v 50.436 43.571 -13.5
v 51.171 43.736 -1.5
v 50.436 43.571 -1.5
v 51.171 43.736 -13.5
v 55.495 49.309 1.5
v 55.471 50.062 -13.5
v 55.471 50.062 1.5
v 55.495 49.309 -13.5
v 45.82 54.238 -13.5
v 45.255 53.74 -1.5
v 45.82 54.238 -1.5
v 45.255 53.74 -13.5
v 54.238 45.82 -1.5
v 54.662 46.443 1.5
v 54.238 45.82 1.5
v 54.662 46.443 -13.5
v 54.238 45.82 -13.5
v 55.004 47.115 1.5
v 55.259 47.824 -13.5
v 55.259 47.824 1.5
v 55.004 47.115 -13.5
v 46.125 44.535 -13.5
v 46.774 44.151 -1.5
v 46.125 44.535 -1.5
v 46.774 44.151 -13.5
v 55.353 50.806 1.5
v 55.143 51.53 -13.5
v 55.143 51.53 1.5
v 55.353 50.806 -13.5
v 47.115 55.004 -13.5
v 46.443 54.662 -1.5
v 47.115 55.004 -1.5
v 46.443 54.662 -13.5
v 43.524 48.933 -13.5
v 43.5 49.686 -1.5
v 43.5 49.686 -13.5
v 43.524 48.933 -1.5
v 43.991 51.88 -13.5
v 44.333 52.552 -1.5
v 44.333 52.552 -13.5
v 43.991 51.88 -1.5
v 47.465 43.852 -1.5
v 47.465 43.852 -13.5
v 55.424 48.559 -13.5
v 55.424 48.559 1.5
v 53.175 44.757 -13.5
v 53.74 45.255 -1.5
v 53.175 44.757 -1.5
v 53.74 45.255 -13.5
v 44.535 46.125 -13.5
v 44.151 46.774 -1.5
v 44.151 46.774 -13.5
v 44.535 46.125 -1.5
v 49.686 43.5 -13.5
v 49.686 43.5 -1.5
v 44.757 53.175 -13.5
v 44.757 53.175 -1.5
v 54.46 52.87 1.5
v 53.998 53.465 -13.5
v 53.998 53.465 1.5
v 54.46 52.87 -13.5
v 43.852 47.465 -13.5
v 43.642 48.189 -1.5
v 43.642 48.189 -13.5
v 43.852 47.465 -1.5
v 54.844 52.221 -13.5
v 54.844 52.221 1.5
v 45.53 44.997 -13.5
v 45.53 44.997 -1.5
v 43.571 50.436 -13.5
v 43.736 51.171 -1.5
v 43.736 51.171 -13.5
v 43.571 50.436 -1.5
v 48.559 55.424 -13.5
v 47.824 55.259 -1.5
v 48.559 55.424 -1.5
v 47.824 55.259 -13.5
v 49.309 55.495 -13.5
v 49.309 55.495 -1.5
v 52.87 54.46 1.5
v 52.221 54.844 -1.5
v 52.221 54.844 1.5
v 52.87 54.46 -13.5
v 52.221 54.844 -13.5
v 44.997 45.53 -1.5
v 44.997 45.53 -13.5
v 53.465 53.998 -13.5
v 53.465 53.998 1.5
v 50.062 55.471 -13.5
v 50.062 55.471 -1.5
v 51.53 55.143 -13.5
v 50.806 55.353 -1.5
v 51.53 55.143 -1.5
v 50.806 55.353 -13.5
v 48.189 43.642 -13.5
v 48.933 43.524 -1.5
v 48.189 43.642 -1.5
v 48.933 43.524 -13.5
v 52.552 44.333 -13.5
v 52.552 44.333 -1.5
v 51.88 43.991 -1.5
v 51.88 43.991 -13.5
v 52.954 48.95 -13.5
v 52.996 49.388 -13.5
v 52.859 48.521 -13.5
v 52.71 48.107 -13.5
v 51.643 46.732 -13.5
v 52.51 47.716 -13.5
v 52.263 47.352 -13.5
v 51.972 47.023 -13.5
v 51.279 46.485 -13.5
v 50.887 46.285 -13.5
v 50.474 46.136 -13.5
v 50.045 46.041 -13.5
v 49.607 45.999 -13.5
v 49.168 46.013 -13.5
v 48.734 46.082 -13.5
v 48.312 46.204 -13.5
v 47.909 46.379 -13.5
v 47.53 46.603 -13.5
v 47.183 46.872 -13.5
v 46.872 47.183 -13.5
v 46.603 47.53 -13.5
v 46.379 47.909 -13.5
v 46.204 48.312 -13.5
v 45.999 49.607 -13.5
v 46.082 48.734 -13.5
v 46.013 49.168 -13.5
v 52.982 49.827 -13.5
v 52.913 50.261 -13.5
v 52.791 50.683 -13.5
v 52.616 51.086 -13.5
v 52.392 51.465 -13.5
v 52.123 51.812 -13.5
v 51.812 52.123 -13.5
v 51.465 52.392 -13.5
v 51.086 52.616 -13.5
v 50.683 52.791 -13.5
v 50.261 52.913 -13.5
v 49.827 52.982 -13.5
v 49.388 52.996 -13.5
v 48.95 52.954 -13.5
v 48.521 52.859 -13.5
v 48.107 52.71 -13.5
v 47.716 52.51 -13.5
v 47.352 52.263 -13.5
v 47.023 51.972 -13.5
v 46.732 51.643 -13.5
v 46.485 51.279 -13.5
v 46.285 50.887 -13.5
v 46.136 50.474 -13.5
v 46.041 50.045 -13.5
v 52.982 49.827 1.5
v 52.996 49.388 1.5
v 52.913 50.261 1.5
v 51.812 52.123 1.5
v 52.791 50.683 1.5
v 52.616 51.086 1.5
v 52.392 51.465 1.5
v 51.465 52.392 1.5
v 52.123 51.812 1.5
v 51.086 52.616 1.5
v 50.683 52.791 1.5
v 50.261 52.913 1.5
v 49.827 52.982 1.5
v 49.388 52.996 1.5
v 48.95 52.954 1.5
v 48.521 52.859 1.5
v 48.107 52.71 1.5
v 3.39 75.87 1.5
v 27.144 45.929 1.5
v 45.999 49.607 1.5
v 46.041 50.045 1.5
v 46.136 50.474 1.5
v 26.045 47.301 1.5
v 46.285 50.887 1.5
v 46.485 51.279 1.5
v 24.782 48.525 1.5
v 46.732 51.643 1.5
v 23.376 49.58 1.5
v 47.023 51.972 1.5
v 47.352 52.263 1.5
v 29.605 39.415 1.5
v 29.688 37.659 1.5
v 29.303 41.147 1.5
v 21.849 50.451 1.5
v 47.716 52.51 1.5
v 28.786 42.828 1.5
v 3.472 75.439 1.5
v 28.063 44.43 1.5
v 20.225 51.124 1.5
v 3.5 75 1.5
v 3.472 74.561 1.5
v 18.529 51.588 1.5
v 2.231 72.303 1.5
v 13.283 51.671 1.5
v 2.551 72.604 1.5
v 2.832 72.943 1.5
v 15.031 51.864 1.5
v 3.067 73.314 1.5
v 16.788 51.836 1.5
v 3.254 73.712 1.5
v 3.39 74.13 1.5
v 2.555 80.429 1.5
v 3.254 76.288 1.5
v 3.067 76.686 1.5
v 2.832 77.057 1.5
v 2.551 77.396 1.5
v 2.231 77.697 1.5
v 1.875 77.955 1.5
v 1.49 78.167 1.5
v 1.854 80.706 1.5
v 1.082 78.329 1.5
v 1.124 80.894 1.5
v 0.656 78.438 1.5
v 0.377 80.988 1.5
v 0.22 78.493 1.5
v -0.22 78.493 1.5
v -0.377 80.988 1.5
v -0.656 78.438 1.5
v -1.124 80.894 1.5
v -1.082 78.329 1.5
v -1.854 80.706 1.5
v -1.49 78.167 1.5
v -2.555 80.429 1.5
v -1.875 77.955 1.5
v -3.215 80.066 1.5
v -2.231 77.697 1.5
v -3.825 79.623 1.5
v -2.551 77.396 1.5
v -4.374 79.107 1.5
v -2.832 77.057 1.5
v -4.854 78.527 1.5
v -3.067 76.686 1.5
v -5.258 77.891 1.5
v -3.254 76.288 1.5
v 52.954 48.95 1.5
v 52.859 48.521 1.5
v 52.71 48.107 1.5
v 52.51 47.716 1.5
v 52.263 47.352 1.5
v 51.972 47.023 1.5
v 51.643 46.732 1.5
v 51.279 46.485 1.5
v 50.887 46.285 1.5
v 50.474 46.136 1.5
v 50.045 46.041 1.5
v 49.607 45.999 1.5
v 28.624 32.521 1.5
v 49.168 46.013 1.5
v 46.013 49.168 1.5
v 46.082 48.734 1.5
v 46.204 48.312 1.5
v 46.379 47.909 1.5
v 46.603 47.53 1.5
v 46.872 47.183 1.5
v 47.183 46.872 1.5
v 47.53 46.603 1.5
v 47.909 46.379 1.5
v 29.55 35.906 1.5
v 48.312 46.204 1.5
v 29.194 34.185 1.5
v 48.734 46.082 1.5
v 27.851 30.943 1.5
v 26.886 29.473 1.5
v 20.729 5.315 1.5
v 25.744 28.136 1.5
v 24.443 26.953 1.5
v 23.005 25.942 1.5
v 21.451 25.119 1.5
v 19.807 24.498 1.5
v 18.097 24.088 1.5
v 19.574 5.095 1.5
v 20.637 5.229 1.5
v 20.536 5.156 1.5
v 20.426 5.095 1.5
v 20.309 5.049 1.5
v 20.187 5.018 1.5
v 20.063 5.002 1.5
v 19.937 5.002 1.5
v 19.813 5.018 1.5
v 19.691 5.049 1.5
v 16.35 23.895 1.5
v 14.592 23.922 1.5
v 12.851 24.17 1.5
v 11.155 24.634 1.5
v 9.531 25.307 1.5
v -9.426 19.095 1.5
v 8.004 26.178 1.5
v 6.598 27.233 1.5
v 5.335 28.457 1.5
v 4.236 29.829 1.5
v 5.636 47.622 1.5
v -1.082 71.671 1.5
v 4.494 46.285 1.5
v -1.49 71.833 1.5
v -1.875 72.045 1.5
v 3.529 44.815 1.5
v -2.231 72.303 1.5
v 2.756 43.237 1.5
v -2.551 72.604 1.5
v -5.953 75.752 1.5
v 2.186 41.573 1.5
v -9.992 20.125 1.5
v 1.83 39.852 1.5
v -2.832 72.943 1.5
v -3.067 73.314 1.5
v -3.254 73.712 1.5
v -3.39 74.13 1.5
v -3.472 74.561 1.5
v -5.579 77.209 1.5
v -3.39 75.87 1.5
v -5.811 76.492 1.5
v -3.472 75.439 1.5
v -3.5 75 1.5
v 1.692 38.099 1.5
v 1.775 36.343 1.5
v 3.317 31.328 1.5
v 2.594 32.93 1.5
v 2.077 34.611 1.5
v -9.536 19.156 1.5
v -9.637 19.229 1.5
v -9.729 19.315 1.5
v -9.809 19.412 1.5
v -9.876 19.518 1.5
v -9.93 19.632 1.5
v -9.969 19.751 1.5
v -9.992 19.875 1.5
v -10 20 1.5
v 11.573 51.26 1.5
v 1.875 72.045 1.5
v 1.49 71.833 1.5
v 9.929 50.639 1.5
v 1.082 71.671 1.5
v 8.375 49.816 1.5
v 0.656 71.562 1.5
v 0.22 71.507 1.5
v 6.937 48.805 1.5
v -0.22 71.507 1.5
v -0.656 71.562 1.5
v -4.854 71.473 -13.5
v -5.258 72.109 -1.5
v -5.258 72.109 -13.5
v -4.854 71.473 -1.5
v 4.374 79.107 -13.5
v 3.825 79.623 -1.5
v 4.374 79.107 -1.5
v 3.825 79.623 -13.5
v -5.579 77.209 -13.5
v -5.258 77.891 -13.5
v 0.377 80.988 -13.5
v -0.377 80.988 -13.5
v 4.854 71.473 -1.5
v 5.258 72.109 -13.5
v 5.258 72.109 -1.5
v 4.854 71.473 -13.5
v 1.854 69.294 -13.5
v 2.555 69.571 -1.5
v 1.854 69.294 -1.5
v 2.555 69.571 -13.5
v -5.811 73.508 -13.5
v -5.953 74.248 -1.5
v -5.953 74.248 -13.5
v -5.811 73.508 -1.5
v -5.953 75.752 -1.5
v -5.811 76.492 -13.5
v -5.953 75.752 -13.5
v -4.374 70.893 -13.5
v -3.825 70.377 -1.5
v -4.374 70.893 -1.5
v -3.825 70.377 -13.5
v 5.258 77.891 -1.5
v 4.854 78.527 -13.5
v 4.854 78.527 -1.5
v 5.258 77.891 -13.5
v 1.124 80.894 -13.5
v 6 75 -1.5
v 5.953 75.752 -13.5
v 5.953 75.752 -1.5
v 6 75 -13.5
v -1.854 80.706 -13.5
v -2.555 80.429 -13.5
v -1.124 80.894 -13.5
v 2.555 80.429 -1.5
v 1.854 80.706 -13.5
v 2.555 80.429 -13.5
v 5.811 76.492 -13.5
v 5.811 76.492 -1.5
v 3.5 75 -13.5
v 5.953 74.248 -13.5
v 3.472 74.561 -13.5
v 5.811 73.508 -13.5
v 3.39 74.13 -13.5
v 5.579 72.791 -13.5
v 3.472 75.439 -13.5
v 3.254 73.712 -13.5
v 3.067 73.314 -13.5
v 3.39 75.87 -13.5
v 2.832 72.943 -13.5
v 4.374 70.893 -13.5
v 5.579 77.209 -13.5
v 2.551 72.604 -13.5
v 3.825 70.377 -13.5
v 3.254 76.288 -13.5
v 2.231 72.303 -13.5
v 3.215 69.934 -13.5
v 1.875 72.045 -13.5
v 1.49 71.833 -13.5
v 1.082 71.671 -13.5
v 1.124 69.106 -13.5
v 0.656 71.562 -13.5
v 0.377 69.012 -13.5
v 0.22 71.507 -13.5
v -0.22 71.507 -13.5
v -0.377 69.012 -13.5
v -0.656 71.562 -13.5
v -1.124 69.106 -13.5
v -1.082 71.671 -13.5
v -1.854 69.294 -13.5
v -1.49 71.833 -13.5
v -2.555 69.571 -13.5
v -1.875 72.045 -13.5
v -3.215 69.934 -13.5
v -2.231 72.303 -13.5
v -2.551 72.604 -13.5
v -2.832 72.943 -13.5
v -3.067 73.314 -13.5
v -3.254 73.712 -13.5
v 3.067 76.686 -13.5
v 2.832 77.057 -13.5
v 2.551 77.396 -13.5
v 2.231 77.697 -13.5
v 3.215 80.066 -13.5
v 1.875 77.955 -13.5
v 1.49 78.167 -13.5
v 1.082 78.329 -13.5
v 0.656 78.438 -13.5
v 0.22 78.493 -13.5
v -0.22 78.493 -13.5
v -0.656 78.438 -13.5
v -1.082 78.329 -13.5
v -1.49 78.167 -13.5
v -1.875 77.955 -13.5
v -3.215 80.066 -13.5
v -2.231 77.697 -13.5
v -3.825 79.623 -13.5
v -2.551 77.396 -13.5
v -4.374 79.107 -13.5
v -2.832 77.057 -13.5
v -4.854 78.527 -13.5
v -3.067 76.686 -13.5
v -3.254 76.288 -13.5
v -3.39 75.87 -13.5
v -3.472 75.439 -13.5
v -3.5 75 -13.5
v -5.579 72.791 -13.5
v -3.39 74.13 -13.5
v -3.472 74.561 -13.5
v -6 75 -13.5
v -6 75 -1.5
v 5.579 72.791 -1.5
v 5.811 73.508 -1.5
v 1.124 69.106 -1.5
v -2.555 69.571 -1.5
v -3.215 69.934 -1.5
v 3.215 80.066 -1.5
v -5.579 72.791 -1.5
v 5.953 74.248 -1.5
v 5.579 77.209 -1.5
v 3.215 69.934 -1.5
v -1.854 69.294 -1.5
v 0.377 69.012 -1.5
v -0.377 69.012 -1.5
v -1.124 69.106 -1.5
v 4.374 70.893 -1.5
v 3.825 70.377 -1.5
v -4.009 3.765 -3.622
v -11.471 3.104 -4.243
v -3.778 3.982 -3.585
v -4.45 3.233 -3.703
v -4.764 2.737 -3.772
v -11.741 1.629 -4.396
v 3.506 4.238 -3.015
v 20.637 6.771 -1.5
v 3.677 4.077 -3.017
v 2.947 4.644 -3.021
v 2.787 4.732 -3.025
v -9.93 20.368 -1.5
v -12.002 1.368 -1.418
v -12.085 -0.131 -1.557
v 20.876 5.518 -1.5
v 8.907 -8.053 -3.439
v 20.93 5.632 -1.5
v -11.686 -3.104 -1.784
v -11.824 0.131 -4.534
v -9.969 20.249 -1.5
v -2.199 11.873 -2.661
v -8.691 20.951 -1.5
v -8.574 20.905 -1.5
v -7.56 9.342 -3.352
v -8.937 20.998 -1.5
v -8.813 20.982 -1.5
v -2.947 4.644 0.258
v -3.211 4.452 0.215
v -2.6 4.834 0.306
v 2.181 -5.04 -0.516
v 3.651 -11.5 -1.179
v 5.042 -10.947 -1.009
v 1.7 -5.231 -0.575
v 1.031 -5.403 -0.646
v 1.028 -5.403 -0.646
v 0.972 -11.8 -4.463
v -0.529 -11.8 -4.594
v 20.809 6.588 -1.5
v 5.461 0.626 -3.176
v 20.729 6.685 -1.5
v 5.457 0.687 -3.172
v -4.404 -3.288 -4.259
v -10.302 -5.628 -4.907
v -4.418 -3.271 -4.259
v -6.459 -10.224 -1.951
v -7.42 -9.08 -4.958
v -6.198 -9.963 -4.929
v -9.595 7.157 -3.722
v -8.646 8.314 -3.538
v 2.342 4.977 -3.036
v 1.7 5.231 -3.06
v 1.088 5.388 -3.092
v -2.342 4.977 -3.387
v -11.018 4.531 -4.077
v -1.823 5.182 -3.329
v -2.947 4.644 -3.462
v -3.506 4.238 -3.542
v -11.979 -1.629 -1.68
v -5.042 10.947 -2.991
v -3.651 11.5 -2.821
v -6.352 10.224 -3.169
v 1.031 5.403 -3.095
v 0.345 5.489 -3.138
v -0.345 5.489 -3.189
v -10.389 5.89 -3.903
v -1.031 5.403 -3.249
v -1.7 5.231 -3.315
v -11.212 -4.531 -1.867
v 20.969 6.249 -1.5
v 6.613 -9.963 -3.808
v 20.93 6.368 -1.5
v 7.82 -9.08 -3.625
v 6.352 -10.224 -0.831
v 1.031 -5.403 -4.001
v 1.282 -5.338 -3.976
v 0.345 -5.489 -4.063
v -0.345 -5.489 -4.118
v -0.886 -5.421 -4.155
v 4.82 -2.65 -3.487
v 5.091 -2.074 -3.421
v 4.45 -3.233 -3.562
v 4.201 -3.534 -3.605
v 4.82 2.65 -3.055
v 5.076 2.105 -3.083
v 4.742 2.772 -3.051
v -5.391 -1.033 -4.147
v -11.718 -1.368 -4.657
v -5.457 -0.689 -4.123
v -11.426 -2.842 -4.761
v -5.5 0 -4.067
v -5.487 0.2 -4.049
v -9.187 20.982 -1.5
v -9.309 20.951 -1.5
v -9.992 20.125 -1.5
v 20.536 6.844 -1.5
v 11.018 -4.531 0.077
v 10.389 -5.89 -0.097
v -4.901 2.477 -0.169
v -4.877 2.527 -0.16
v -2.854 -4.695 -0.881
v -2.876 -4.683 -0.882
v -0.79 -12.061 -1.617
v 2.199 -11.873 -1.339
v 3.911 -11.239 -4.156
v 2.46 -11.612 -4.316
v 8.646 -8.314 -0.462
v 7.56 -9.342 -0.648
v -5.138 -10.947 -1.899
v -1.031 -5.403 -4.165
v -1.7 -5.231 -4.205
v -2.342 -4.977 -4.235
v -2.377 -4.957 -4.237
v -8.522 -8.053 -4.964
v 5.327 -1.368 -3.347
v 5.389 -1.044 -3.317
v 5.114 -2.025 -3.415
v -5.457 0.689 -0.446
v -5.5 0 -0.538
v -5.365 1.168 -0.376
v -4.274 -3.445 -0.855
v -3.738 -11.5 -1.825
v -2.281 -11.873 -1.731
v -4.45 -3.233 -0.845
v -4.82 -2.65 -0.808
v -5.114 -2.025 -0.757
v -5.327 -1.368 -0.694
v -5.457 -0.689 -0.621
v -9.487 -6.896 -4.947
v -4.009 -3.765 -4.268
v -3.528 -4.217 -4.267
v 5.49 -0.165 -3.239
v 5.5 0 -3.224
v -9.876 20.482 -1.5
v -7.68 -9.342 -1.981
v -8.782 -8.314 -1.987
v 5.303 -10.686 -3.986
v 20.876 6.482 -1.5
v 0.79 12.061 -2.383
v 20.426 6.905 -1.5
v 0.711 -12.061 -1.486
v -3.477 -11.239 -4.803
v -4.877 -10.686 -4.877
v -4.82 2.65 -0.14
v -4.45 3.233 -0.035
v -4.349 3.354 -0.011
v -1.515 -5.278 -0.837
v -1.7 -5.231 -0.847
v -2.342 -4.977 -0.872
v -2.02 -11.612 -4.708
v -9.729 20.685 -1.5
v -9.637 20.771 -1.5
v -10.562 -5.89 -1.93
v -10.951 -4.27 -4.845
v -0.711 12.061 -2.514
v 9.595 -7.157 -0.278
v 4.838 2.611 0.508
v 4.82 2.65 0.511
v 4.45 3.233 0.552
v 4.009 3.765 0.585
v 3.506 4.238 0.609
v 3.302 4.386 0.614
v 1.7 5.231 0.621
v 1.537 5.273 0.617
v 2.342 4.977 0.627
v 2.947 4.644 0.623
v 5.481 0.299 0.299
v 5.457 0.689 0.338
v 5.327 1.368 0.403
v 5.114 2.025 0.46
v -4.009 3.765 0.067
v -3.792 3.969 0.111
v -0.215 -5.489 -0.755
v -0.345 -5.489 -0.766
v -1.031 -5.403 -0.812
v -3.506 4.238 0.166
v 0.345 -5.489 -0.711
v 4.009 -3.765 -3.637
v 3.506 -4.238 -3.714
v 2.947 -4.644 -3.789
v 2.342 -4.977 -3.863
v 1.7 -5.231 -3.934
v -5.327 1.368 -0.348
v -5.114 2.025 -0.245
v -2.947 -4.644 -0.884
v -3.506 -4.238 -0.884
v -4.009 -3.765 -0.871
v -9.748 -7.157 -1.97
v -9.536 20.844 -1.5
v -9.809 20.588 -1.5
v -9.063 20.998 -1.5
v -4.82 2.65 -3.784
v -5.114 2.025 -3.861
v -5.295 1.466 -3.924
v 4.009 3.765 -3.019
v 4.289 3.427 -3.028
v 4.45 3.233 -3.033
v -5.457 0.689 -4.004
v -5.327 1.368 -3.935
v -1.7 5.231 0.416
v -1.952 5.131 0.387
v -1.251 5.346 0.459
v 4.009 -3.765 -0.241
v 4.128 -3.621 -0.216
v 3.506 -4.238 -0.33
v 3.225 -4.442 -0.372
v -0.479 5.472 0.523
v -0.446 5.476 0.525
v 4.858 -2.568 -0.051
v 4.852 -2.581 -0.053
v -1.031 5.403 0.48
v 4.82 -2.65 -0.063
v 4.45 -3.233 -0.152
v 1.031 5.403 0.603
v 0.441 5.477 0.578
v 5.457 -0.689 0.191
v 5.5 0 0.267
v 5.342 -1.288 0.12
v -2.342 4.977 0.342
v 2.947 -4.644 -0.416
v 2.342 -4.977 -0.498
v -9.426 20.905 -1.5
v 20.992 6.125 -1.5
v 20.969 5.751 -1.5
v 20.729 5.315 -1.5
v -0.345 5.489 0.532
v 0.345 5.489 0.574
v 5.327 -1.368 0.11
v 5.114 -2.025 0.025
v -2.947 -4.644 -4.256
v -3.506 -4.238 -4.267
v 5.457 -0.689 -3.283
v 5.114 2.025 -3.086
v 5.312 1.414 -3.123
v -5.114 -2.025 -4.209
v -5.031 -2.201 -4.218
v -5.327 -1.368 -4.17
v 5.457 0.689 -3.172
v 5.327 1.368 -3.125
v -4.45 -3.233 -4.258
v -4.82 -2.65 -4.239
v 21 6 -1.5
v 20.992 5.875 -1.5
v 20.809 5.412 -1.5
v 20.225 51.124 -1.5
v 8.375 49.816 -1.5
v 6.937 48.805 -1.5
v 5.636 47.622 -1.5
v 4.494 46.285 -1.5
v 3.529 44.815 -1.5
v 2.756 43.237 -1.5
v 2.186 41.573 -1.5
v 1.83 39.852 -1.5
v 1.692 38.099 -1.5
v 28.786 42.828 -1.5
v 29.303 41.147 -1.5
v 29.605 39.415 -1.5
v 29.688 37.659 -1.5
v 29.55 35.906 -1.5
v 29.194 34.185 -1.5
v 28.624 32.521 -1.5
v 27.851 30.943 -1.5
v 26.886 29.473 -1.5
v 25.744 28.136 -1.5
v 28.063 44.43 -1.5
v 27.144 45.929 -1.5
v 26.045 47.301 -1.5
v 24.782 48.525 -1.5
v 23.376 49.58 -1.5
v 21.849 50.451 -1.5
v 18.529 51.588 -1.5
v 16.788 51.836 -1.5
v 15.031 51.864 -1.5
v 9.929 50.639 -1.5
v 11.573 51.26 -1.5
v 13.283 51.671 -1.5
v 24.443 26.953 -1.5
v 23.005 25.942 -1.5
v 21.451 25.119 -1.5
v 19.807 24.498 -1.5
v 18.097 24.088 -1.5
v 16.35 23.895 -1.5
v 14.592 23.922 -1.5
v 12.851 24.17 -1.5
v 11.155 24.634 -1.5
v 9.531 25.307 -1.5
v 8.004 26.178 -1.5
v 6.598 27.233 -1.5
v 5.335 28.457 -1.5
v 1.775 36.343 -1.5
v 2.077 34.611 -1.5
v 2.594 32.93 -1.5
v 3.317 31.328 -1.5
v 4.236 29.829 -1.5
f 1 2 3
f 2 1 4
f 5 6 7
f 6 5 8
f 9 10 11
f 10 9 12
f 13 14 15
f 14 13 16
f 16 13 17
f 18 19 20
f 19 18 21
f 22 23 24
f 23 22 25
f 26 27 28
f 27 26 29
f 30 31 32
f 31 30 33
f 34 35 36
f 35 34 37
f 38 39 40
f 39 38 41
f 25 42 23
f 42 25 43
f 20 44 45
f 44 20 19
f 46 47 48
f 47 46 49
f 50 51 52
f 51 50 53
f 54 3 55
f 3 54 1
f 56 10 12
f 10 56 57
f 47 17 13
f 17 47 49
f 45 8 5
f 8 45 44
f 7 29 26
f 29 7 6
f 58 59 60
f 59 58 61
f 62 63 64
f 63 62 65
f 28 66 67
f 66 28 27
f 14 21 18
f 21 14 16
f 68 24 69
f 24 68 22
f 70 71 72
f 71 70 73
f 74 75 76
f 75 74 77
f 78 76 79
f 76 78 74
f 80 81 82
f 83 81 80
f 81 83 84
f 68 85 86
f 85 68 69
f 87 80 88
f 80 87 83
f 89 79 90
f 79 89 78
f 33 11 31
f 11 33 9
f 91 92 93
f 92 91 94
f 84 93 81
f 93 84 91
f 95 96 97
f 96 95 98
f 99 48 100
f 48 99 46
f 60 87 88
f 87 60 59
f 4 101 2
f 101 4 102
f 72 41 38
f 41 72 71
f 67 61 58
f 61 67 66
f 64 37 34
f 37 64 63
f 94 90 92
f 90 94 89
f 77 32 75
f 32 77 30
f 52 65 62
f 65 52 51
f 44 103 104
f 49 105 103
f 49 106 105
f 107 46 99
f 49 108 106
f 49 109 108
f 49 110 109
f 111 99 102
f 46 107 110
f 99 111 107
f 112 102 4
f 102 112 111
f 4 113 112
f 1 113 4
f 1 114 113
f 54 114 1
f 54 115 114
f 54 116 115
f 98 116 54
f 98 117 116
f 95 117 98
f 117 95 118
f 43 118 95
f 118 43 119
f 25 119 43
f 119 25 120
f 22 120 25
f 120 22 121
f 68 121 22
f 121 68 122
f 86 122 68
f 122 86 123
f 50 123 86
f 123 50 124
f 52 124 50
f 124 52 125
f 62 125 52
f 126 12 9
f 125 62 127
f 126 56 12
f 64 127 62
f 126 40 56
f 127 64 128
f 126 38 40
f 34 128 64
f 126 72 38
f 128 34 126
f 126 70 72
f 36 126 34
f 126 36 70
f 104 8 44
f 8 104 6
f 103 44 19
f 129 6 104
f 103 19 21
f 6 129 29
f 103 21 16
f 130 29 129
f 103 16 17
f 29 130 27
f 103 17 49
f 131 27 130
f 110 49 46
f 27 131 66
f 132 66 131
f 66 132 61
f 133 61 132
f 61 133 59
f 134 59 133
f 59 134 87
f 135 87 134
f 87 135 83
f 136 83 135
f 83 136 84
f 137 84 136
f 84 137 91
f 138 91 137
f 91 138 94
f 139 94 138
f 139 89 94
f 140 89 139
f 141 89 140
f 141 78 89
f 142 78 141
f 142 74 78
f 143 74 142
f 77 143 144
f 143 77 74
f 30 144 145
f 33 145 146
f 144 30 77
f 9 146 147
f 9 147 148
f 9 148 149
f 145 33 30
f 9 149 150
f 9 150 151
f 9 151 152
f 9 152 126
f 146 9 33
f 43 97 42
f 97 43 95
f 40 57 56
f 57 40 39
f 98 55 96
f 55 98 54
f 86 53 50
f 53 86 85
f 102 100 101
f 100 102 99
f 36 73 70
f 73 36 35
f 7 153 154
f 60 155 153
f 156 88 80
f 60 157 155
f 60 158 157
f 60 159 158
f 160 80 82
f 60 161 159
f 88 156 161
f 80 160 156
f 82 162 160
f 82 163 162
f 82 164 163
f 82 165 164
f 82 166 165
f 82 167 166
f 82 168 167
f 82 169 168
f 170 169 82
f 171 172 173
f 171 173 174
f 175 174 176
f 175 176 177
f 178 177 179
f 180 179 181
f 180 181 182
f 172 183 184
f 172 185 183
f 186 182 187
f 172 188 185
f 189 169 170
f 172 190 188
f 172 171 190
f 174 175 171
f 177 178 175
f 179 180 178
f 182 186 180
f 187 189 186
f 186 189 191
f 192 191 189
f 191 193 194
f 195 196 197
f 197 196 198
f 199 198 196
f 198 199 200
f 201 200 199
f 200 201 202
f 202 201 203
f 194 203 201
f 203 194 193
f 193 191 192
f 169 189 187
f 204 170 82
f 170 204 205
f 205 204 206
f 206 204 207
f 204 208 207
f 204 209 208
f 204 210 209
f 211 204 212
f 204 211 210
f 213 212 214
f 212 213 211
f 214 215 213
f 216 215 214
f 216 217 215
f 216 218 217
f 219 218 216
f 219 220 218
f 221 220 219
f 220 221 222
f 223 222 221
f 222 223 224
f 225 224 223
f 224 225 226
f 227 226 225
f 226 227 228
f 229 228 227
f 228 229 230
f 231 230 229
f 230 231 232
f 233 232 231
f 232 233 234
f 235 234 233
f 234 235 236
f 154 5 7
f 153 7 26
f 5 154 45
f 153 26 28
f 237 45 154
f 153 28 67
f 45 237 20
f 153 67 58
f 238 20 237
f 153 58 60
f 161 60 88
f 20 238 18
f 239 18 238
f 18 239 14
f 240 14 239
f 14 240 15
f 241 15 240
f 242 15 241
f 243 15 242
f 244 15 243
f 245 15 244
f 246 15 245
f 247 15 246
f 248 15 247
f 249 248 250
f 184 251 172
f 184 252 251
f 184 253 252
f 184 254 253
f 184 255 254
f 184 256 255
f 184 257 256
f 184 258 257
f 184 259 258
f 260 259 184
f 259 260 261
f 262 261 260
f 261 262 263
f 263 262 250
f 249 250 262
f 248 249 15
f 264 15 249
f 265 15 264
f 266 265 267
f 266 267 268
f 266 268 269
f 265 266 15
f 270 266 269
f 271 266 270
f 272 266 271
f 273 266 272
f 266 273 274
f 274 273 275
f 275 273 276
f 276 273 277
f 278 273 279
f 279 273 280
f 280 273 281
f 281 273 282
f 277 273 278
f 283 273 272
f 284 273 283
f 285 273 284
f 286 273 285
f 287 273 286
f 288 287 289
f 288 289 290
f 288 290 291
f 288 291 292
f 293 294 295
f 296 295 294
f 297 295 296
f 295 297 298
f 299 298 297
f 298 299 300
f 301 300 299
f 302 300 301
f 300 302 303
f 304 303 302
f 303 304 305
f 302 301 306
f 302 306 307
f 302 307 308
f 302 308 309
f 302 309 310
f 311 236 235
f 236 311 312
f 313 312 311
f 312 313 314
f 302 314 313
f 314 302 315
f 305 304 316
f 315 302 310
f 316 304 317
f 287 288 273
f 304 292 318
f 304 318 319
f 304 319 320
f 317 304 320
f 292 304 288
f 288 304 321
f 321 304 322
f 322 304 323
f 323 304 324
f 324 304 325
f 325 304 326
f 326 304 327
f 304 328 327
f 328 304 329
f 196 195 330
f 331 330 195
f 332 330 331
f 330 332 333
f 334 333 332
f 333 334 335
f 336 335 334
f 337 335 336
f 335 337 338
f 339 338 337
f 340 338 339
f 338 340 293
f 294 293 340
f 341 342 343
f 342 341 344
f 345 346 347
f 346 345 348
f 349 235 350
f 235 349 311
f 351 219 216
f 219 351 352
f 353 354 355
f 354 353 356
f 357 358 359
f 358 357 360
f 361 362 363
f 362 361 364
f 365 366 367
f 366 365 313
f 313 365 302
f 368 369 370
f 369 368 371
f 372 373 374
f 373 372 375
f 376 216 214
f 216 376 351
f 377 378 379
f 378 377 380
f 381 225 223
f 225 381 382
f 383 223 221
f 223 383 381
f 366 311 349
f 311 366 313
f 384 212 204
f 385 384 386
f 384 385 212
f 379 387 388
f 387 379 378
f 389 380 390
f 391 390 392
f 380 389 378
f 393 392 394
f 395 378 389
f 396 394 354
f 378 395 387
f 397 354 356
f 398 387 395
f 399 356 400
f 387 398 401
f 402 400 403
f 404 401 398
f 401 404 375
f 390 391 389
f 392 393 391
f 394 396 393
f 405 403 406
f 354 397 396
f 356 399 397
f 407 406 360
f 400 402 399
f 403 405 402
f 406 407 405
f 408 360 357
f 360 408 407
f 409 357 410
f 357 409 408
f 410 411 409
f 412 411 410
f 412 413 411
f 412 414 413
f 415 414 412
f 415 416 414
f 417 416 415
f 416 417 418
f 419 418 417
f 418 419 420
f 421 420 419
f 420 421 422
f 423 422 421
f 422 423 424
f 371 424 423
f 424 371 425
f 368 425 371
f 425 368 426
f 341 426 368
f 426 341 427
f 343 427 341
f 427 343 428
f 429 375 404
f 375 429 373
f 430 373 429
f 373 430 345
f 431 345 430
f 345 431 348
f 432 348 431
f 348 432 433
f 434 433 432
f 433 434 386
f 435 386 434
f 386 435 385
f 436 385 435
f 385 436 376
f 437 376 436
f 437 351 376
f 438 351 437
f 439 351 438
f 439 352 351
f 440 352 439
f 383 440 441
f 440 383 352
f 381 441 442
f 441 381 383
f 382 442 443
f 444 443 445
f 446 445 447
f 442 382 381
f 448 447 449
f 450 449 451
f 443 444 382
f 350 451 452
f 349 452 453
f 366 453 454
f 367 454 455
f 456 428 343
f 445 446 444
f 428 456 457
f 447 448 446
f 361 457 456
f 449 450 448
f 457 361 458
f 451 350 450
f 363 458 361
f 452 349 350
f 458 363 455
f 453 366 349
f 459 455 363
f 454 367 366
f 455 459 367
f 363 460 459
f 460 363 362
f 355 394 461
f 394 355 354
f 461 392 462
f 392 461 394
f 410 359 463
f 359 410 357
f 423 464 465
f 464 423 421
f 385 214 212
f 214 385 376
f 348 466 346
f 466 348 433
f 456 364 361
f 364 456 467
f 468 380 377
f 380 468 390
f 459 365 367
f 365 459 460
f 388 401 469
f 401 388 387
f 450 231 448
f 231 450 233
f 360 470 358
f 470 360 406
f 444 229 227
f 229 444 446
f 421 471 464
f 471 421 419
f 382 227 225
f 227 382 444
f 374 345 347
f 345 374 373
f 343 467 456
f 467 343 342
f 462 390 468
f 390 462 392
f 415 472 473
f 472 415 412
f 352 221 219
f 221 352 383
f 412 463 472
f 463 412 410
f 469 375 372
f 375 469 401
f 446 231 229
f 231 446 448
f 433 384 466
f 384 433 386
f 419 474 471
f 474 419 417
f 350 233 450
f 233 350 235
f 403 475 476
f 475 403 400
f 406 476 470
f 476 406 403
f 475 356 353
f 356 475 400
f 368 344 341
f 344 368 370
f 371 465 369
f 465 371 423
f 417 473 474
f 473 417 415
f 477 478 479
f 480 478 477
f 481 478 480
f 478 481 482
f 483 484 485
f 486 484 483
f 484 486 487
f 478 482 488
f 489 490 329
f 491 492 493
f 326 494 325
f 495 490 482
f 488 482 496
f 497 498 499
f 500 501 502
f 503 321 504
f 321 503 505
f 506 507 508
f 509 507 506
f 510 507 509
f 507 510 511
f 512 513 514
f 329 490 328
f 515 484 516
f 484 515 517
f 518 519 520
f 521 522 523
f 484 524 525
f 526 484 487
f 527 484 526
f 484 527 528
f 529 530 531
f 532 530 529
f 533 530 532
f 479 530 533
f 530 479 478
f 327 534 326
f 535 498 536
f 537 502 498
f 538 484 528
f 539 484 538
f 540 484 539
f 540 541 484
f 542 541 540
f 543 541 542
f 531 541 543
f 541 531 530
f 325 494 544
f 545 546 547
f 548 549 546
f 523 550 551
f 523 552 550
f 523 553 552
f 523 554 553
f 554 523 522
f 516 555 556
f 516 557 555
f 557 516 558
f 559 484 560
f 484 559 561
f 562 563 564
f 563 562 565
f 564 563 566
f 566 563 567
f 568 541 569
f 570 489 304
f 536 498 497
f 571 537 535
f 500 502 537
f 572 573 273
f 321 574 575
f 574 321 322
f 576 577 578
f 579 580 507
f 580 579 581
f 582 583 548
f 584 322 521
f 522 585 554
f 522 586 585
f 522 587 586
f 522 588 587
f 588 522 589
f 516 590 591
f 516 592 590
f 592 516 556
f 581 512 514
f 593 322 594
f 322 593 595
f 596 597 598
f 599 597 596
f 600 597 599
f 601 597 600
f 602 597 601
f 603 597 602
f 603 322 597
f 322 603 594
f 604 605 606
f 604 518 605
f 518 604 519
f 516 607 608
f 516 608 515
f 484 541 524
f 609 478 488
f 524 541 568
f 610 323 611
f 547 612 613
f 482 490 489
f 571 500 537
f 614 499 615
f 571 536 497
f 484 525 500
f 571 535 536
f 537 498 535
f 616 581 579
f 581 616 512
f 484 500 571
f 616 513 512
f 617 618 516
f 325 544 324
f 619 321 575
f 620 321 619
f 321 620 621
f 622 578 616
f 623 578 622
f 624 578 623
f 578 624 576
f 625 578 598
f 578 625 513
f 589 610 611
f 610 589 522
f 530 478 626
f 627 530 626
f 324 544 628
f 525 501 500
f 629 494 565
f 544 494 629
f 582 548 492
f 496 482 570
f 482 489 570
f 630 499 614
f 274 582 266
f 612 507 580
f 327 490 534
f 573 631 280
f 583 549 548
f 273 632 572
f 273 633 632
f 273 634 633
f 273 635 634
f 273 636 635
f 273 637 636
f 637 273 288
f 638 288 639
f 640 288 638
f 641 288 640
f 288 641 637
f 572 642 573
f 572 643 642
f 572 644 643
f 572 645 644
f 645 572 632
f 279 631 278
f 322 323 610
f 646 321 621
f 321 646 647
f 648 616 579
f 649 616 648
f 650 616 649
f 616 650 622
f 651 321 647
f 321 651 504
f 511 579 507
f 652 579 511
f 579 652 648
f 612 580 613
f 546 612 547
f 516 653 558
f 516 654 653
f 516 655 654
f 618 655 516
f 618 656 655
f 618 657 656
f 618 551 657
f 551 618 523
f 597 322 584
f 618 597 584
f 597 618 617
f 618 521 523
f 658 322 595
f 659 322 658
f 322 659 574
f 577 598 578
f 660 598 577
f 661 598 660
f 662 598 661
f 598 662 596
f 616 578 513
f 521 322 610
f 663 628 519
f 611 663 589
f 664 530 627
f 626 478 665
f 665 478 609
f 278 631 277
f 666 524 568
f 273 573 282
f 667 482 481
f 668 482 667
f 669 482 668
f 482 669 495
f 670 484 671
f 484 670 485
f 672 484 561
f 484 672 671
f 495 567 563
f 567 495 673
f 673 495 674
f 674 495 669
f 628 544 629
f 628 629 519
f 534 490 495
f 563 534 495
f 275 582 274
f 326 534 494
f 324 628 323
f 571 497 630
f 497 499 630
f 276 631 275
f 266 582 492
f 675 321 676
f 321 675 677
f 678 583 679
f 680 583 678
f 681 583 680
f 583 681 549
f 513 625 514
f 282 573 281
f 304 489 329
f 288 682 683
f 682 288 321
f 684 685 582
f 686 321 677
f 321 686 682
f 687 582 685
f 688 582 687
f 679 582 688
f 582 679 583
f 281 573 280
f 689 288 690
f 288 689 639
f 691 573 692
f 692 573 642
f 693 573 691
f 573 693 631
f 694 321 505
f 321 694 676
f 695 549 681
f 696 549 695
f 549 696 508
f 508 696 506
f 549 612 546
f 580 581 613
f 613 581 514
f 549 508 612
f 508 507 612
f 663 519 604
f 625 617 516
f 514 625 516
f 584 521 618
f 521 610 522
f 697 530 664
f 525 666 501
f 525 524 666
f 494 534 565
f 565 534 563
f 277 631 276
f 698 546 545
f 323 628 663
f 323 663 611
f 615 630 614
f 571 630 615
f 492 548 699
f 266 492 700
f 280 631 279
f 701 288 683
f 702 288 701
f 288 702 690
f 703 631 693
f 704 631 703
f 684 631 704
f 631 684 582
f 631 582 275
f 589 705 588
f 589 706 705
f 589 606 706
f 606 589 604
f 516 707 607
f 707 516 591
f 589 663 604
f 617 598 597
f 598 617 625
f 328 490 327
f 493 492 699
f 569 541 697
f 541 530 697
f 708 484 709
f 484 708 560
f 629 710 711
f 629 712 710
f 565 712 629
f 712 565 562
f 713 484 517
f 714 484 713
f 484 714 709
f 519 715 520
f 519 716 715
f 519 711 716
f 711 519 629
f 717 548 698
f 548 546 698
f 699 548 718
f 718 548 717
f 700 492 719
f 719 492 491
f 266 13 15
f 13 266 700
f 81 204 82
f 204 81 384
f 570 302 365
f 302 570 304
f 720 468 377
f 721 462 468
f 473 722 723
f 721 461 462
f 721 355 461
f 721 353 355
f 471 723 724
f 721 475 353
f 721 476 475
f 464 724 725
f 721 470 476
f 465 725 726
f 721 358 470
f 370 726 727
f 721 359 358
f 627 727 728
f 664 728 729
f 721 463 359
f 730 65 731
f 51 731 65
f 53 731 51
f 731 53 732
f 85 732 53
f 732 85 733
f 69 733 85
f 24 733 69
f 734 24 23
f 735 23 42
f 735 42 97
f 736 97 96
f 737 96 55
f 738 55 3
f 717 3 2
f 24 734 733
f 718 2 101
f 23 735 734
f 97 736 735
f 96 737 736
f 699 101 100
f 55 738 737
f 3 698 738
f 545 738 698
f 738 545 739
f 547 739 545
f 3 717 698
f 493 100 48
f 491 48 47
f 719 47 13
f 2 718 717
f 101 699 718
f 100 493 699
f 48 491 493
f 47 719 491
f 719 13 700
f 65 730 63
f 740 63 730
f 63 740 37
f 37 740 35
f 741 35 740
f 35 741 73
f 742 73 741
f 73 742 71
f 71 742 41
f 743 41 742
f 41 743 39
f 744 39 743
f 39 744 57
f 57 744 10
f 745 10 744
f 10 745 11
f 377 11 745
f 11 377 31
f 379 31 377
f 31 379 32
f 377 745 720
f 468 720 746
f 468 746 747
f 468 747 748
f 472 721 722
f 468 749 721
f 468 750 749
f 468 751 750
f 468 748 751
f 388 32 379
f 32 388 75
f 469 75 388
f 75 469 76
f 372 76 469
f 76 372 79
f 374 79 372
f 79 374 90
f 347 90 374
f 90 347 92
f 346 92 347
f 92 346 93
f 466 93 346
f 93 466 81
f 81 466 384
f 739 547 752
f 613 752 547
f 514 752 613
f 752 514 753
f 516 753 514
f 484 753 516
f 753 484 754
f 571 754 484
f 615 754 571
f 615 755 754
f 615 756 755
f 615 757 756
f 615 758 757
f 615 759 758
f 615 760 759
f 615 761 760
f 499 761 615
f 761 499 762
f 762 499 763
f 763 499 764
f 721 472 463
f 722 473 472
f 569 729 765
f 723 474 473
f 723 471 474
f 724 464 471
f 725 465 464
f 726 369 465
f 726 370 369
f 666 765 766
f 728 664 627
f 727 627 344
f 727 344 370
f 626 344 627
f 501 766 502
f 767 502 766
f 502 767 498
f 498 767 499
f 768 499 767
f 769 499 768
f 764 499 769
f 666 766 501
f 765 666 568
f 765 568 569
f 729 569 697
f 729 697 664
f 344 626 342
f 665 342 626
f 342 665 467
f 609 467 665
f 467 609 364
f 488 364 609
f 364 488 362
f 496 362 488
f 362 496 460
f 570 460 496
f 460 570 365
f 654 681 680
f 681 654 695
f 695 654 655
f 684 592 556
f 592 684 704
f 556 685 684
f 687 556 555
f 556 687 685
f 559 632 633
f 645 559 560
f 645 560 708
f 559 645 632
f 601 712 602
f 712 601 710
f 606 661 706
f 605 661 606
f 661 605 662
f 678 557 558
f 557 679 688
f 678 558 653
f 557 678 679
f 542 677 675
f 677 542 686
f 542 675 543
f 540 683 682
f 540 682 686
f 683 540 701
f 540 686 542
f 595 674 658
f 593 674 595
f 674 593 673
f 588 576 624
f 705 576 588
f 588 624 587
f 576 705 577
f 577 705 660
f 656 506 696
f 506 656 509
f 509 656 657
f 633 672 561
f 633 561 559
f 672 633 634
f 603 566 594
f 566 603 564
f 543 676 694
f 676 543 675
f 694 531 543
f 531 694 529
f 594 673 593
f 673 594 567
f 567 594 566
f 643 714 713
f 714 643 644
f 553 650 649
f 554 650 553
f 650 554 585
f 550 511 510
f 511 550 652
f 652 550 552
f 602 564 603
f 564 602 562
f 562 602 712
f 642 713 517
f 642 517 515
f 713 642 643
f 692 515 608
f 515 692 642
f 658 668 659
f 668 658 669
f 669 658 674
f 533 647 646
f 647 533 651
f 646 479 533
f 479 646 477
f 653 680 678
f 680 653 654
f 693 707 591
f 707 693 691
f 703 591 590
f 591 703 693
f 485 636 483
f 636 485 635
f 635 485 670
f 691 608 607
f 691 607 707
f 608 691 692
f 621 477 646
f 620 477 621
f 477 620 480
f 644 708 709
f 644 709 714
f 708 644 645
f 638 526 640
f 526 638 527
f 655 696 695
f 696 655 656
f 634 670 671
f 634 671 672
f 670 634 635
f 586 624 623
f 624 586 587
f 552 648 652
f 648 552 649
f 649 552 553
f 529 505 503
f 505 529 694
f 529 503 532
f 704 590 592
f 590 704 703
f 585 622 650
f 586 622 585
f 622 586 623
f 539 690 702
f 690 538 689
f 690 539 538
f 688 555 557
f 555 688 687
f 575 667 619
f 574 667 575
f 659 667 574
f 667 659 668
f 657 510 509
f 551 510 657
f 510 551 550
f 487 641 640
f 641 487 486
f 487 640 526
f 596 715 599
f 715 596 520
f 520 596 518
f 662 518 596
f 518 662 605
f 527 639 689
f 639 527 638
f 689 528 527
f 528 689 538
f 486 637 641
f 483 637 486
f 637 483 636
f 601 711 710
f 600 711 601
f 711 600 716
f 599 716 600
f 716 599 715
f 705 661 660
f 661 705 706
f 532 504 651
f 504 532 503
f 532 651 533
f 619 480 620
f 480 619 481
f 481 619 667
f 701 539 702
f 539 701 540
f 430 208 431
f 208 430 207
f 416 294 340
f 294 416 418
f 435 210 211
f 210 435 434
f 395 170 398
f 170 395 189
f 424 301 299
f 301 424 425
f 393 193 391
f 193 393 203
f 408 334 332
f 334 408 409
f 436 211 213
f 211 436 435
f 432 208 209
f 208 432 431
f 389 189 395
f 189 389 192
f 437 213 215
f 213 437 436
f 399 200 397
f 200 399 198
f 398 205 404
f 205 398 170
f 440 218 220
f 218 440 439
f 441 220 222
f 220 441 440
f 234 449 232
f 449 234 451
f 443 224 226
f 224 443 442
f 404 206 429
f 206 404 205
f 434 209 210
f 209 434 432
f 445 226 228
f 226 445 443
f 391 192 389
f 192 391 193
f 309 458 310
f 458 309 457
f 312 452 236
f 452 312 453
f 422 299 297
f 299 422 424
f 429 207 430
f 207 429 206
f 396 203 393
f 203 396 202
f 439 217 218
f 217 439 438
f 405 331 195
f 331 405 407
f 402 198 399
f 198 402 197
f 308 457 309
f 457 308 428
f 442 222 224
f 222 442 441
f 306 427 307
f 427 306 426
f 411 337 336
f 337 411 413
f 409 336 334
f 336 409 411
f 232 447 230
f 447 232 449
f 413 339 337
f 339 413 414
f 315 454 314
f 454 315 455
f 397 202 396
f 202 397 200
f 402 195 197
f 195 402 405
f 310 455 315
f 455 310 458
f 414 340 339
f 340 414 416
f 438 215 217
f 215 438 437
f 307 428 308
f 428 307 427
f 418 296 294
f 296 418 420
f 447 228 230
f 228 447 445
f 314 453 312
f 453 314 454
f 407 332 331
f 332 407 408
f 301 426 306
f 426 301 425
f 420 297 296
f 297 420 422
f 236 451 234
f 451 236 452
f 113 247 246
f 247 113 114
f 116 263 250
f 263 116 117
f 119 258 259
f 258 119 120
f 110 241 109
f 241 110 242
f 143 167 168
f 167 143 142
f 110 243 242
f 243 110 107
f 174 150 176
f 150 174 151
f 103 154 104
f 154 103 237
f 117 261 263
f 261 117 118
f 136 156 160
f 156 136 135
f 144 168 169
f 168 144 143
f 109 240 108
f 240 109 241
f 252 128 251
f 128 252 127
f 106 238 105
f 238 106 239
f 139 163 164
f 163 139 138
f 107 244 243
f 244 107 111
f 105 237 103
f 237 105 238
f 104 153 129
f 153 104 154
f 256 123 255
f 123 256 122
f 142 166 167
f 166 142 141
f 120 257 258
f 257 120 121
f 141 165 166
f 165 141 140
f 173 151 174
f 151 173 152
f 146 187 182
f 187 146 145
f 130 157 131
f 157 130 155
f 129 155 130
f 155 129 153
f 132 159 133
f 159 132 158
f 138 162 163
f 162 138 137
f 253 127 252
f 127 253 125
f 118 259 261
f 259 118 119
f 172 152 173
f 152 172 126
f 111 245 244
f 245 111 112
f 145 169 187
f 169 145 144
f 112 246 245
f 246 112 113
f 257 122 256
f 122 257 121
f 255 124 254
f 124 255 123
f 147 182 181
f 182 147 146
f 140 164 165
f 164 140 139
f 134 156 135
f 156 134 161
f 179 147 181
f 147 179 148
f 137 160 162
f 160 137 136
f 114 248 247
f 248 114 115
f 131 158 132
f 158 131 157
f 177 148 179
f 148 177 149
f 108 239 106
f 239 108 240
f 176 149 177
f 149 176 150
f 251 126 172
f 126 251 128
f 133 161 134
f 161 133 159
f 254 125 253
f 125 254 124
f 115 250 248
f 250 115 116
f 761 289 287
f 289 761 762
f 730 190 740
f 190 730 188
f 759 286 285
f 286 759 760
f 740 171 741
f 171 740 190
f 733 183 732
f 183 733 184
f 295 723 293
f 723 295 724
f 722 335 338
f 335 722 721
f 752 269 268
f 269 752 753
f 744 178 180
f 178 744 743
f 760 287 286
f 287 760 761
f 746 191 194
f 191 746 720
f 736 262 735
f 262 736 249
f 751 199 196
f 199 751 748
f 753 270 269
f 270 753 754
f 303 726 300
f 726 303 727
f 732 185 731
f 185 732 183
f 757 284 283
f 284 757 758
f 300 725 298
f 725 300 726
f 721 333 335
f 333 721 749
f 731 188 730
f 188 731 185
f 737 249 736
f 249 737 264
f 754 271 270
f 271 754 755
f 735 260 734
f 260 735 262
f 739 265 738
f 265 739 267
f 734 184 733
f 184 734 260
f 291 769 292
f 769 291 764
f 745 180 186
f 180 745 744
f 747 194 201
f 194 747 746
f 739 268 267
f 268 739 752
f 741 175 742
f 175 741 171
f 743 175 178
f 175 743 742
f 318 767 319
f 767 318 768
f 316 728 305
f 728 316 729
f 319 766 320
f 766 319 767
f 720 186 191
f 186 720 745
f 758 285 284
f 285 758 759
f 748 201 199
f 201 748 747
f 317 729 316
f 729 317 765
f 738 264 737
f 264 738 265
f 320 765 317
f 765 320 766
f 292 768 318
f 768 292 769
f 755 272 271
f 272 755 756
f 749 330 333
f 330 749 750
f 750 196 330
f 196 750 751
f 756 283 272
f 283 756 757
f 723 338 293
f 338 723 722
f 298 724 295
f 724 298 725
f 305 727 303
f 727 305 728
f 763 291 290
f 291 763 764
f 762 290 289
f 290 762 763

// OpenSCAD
$fn = 50;

difference() {
    union() {
        // circular brackets
        rotate([0, 0, -45]) translate([0, 70, -6]) cylinder(15, 6, 6, true);
        translate([0, 75, -6]) cylinder(15, 6, 6, true);

        hull() {
            translate([0, 0, -2]) rotate([5, -5, 0]) cylinder(3, 12, 12, true);
            translate([-9, 20, 0]) cylinder(3, 1, 1, true);
            translate([20, 6, 0]) cylinder(3, 1, 1, true);
        }
        
        hull() {
            translate([-9, 20, 0]) cylinder(3, 1, 1, true);
            translate([20, 6, 0]) cylinder(3, 1, 1, true);
            rotate([0, 0, -45]) translate([0, 70, 0]) cylinder(3, 6, 6, true);
            translate([0, 75, 0]) cylinder(3, 6, 6, true);
        }
        
        
    }

    cylinder(30, 5.5, 5.5, true);
    translate([0, 75, 0]) cylinder(30, 3.5, 3.5, true);
    rotate([0, 0, -45]) translate([0, 70, 0]) cylinder(30, 3.5, 3.5, true);
    
    //cutout
    rotate([0, 0, -22.5]) translate([0, 41, 0]) cylinder(30, 14, 14, true);
    
}
